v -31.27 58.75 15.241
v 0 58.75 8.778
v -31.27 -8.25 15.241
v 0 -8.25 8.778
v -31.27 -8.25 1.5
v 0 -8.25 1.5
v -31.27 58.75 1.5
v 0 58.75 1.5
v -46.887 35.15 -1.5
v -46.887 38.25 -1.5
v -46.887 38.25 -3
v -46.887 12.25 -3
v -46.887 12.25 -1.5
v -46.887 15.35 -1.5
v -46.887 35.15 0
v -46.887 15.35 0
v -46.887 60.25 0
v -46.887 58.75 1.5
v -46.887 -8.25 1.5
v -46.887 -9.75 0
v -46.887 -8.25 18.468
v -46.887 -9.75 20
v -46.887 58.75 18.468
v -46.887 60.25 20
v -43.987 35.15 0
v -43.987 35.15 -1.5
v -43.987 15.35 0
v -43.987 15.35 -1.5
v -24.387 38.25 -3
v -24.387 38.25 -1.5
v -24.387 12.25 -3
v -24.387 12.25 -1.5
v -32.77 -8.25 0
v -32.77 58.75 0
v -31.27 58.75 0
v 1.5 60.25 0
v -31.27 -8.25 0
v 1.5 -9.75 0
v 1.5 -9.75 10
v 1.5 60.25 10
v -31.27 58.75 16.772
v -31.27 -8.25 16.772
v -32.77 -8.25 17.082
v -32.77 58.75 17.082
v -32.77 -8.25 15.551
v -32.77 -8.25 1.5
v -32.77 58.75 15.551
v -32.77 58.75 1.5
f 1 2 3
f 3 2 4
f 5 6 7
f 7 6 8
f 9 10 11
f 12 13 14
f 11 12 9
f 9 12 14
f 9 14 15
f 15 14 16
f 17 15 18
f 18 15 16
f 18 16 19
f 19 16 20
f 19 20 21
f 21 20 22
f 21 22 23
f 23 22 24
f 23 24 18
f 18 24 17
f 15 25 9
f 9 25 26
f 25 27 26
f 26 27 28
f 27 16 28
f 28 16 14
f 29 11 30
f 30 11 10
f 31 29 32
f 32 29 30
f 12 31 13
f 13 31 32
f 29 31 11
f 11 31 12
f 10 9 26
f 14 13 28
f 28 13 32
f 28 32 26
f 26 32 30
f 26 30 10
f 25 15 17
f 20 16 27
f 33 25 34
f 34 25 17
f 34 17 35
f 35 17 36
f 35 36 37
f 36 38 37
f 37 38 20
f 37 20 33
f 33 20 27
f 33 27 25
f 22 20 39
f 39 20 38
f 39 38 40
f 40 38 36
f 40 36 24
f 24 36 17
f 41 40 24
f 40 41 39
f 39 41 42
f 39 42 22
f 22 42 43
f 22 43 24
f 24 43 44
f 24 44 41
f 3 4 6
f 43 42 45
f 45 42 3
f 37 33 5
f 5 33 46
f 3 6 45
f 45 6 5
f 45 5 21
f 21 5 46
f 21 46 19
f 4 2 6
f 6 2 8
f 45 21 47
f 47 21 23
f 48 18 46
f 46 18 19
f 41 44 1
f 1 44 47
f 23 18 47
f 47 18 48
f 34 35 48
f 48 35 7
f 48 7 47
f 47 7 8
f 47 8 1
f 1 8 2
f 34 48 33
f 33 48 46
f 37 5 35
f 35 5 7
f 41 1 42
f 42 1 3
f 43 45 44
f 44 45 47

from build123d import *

# Parameters (mm, degrees)
SKETCH1_W           = 2.9
SKETCH1_H           = 19.8
BOSS_EXTRUDE1_DEPTH = 1.5
SKETCH2_W           = 22.5
SKETCH2_H           = 26
BOSS_EXTRUDE3_DEPTH = 1.5
BOSS_EXTRUDE4_DEPTH = 20
CUT_EXTRUDE1_DEPTH  = 70
CUT_EXTRUDE2_START  = -35
CUT_EXTRUDE2_DEPTH  = 33.5
CUT_EXTRUDE3_REACH  = 80.921
SKETCH6_W           = 1.5
SKETCH6_H           = 67


with BuildPart() as part:
    # Sketch1 → Boss-Extrude1 (new body)
    with BuildSketch(Plane.XY):
        with Locations((-45.437495374, 25.25)):
            Rectangle(SKETCH1_W, SKETCH1_H)
    extrude(amount=-BOSS_EXTRUDE1_DEPTH)

    # Sketch2 → Boss-Extrude3 (add)
    with BuildSketch(Plane(origin=(0, 0, -1.5), x_dir=(-1, 0, 0), z_dir=(0, 0, -1))):
        with Locations((35.637495374, 25.25)):
            Rectangle(SKETCH2_W, SKETCH2_H)
    extrude(amount=BOSS_EXTRUDE3_DEPTH)

    # Sketch3 → Boss-Extrude4 (add)
    with BuildSketch(Plane.XY):
        Polygon((-46.887495374, 15.25), (-46.887495374, 35.25), (-46.887495374, 60.25), (1.5, 60.25), (1.5, -9.75), (-46.887495374, -9.75), align=None)
    extrude(amount=BOSS_EXTRUDE4_DEPTH)

    # Sketch4 → Cut-Extrude1 (cut)
    with BuildSketch(Plane.XZ.offset(9.75)):
        Polygon((-46.887495374, 20), (1.5, 10), (1.5, 20), align=None)
    extrude(amount=-CUT_EXTRUDE1_DEPTH, mode=Mode.SUBTRACT)

    # Sketch5 → Cut-Extrude2 (cut)
    with BuildSketch(Plane.XZ.offset(9.75).offset(CUT_EXTRUDE2_START)):
        Polygon((0, 1.5), (0, 8.778299559), (-46.887495374, 18.468302113), (-46.887495374, 1.5), align=None)
    cut_extrude2 = extrude(amount=CUT_EXTRUDE2_DEPTH, mode=Mode.SUBTRACT)

    # Mirror1: Cut-Extrude2 across plane
    add(cut_extrude2.mirror(Plane.ZX.offset(25.25)), mode=Mode.SUBTRACT)

    # Cut-Extrude3: up to this plane
    cut_extrude3_end = Plane(origin=(-46.887495374, 109.660016278, 20), z_dir=(-0.20238811385578315, 0, -0.9793053922908311))
    # Sketch6 → Cut-Extrude3 (cut, up to the surface)
    with BuildSketch(Plane(origin=(0, 0, 0), x_dir=(-1, 0, 0), z_dir=(0, 0, -1)), mode=Mode.PRIVATE) as cut_extrude3_sk1:
        with Locations((32.02, 25.25)):
            Rectangle(SKETCH6_W, SKETCH6_H)
    cut_extrude3_tool1 = split(extrude(cut_extrude3_sk1.sketch, amount=-CUT_EXTRUDE3_REACH, mode=Mode.PRIVATE), bisect_by=cut_extrude3_end, keep=Keep.BOTH, mode=Mode.PRIVATE)
    add(cut_extrude3_tool1.solids().sort_by_distance((-32.02, 25.25, 0))[0], mode=Mode.SUBTRACT)


solid = part.part
